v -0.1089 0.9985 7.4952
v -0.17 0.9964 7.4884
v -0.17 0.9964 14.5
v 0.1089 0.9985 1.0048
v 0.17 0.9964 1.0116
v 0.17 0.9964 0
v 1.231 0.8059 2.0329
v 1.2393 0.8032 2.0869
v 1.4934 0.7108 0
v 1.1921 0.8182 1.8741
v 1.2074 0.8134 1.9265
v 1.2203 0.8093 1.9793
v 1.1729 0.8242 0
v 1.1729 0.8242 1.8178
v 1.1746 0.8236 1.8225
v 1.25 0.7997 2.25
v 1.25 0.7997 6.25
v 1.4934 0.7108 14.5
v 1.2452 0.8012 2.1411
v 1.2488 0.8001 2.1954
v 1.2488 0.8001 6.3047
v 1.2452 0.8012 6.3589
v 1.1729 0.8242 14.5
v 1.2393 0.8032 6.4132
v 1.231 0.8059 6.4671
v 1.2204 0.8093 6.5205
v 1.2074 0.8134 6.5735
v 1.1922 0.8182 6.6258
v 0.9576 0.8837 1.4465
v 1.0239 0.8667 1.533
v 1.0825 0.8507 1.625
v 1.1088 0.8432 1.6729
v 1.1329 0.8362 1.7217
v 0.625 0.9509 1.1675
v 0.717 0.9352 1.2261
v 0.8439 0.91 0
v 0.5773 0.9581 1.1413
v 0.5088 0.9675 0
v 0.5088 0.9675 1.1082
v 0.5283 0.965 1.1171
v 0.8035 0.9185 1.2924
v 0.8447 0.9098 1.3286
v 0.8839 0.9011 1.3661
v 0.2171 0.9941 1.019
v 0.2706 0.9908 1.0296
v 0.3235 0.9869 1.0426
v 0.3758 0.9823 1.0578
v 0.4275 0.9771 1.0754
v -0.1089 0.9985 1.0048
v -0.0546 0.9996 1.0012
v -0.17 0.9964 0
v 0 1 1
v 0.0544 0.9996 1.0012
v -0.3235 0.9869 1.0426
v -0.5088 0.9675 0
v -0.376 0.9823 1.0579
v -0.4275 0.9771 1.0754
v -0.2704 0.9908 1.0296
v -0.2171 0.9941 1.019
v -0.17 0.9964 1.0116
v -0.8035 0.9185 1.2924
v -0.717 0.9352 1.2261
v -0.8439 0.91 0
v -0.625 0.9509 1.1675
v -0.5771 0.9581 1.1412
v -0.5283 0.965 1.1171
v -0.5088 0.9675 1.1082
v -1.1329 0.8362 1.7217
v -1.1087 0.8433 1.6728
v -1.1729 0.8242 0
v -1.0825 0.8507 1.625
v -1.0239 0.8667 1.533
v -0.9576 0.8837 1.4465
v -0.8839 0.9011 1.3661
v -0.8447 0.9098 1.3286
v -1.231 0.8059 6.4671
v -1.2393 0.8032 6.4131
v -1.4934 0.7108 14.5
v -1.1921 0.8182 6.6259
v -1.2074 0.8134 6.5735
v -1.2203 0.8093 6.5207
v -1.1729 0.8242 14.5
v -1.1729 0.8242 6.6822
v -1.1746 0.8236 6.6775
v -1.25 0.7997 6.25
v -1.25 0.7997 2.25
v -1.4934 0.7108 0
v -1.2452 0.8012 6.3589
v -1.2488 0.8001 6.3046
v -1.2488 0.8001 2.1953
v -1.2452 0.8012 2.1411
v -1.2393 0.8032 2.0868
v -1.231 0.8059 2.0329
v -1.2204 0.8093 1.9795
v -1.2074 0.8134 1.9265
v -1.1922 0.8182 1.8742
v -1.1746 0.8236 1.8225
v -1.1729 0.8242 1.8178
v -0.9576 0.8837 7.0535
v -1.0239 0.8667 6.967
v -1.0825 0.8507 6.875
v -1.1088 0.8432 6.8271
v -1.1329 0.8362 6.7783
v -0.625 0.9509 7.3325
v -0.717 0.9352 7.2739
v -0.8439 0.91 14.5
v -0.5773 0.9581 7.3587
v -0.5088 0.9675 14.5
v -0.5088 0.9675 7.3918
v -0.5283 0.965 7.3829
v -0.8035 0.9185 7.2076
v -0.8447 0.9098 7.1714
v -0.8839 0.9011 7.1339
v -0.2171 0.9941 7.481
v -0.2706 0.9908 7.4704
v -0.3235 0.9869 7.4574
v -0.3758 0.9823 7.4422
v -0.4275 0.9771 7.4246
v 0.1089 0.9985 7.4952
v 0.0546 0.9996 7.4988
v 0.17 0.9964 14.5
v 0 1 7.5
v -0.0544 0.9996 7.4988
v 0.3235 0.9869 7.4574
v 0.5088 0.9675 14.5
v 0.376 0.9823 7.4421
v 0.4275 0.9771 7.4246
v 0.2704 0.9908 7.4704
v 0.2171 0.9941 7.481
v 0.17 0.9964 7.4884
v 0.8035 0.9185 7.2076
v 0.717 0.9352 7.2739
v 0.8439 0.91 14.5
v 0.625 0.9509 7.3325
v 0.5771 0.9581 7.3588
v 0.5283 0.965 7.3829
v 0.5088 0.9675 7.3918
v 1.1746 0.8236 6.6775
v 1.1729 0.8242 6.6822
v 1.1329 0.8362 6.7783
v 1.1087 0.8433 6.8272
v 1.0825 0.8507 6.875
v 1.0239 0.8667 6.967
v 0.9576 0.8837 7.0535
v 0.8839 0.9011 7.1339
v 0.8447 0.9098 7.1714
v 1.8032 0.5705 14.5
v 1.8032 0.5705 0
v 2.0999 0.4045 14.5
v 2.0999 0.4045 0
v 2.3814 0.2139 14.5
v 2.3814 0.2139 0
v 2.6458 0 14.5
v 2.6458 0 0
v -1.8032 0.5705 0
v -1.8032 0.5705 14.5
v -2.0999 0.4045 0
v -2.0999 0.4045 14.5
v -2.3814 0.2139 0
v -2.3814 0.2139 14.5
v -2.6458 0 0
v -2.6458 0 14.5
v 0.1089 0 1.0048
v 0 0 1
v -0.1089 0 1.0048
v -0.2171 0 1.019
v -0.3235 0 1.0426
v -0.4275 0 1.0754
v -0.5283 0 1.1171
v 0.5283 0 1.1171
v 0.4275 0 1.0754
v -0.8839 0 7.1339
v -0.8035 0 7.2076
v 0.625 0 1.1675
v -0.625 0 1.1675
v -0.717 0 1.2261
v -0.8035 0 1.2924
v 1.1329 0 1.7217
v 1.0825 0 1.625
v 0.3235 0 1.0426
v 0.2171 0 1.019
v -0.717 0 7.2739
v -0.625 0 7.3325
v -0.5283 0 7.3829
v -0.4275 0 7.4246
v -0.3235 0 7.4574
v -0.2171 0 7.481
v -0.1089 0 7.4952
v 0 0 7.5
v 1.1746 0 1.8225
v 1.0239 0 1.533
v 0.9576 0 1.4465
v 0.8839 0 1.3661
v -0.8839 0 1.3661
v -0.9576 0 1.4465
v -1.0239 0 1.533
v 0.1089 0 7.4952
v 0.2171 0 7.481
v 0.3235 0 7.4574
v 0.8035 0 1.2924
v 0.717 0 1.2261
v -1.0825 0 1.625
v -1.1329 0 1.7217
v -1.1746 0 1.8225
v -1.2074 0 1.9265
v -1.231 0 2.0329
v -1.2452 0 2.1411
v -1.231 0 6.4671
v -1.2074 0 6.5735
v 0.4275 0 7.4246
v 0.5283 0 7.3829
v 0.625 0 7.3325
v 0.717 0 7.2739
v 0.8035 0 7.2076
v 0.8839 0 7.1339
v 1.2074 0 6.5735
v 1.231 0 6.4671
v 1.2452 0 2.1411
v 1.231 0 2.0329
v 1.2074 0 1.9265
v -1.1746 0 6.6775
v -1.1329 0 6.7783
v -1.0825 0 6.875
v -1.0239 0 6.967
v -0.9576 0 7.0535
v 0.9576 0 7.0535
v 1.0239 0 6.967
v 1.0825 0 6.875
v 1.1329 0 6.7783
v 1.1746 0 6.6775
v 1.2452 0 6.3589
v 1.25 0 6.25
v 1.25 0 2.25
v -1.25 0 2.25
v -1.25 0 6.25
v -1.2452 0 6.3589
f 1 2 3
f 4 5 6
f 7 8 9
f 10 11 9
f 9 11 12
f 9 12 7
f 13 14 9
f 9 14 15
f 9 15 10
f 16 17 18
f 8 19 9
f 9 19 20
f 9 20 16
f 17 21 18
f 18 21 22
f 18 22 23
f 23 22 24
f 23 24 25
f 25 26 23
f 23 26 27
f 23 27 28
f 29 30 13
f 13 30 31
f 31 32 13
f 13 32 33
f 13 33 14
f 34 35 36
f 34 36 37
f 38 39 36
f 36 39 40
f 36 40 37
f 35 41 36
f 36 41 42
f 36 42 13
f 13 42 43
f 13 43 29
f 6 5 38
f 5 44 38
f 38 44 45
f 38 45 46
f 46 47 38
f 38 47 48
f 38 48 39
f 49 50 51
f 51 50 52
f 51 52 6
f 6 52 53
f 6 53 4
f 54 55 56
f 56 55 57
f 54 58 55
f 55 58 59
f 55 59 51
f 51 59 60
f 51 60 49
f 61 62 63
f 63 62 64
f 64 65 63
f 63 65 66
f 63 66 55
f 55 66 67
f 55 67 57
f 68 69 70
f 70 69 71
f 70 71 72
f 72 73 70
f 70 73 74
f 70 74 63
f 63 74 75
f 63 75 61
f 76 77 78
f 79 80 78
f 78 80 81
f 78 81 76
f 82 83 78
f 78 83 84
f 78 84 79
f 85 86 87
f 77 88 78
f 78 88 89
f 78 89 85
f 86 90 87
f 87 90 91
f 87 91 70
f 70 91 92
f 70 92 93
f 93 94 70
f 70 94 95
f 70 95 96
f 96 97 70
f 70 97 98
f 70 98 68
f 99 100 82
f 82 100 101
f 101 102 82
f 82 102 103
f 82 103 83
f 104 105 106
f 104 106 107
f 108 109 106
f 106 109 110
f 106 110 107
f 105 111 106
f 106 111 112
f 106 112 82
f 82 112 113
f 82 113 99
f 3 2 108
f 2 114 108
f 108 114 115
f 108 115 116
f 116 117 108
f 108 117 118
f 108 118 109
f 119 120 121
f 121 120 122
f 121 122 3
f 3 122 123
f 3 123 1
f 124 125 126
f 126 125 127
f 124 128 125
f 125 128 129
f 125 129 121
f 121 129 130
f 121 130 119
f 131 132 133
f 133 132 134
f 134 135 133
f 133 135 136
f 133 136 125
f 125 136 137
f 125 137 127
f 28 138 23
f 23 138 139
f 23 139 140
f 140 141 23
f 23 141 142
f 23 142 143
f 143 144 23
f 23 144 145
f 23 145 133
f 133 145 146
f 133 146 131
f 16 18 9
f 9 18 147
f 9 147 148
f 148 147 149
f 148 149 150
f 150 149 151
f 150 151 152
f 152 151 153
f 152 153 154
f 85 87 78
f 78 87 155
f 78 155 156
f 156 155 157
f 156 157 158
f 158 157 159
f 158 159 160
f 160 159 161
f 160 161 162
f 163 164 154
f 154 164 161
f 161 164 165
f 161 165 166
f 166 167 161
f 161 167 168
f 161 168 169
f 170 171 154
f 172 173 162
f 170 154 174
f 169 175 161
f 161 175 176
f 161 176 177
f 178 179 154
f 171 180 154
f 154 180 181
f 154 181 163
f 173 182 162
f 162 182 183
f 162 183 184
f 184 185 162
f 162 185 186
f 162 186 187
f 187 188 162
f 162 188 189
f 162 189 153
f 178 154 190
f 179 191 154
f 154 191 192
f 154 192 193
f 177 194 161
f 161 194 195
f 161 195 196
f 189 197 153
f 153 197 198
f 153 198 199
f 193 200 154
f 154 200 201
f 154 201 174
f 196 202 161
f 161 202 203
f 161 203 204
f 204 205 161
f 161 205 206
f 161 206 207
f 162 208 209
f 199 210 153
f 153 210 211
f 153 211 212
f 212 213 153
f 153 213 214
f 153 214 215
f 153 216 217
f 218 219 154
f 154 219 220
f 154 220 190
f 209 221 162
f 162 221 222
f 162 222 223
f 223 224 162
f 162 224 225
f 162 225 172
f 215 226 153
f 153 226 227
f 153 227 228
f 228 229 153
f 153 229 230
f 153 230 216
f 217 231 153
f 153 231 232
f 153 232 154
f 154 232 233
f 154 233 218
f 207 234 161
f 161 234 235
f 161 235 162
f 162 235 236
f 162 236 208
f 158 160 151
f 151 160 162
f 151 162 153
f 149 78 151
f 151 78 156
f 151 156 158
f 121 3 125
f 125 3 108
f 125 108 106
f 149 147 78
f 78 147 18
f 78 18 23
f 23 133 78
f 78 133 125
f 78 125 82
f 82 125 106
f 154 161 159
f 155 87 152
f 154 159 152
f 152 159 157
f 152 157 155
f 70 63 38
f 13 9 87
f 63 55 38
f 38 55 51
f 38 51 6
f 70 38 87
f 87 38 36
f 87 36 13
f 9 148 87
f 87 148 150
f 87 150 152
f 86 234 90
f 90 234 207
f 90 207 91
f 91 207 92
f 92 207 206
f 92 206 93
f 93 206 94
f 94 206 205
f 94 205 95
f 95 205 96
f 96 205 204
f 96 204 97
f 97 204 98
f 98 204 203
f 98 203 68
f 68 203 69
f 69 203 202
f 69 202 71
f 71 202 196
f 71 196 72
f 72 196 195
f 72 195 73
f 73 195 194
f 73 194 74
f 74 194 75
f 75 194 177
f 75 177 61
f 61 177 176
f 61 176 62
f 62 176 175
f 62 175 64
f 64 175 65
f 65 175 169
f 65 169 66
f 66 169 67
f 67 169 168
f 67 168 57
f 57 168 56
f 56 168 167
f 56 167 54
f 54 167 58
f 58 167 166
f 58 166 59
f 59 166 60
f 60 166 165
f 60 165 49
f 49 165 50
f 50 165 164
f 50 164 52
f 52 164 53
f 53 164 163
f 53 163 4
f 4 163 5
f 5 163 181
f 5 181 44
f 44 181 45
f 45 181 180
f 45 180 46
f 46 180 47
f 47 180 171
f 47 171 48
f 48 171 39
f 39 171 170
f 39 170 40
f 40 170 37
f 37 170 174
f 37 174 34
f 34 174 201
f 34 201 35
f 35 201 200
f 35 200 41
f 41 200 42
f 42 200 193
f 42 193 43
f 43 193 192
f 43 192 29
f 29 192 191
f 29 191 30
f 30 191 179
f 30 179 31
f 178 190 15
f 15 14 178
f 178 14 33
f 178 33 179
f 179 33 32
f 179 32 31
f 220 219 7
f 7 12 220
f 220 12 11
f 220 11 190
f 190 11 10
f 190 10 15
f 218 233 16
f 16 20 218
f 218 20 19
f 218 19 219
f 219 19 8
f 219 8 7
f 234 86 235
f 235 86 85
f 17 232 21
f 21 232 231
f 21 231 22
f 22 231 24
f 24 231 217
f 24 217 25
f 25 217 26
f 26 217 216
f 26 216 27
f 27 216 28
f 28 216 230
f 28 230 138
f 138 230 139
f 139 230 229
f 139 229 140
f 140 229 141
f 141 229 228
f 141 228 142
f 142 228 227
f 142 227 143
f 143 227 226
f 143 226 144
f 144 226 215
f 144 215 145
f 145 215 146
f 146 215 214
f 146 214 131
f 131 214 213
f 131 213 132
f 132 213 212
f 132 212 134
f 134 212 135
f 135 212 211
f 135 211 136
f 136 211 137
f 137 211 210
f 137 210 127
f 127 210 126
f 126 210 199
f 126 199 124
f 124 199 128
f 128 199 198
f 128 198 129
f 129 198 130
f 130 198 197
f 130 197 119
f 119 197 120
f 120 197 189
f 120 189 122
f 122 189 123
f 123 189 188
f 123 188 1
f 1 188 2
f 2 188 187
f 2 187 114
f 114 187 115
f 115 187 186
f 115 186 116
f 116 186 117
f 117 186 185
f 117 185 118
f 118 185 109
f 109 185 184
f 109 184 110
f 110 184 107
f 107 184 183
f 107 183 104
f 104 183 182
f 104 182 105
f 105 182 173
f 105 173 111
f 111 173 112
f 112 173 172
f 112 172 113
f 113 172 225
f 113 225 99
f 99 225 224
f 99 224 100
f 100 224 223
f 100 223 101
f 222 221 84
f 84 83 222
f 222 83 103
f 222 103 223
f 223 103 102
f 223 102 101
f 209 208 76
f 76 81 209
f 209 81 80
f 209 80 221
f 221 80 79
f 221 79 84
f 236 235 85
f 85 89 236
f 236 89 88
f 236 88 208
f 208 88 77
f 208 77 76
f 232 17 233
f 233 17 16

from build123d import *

# Parameters (mm, degrees)
BOSS_EXTRUDE1_DEPTH = 14.5
CUT_EXTRUDE1_DEPTH  = 15.773286703


with BuildPart() as part:
    # Sketch1 → Boss-Extrude1 (new body)
    with BuildSketch(Plane.XY):
        with BuildLine():
            Line((-2.645751311, 0), (2.645751311, 0))
            ThreePointArc((2.645751311, 0), (0, 1), (-2.645751311, 0))
        make_face()
    extrude(amount=BOSS_EXTRUDE1_DEPTH)

    # Sketch2 → Cut-Extrude1 (cut, through all)
    with BuildSketch(Plane.XZ):
        with BuildLine():
            Line((-1.25, 2.25), (-1.25, 6.25))
            ThreePointArc((-1.25, 6.25), (0, 7.5), (1.25, 6.25))
            Line((1.25, 6.25), (1.25, 2.25))
            ThreePointArc((1.25, 2.25), (0, 1), (-1.25, 2.25))
        make_face()
    extrude(amount=-CUT_EXTRUDE1_DEPTH, mode=Mode.SUBTRACT)


solid = part.part
